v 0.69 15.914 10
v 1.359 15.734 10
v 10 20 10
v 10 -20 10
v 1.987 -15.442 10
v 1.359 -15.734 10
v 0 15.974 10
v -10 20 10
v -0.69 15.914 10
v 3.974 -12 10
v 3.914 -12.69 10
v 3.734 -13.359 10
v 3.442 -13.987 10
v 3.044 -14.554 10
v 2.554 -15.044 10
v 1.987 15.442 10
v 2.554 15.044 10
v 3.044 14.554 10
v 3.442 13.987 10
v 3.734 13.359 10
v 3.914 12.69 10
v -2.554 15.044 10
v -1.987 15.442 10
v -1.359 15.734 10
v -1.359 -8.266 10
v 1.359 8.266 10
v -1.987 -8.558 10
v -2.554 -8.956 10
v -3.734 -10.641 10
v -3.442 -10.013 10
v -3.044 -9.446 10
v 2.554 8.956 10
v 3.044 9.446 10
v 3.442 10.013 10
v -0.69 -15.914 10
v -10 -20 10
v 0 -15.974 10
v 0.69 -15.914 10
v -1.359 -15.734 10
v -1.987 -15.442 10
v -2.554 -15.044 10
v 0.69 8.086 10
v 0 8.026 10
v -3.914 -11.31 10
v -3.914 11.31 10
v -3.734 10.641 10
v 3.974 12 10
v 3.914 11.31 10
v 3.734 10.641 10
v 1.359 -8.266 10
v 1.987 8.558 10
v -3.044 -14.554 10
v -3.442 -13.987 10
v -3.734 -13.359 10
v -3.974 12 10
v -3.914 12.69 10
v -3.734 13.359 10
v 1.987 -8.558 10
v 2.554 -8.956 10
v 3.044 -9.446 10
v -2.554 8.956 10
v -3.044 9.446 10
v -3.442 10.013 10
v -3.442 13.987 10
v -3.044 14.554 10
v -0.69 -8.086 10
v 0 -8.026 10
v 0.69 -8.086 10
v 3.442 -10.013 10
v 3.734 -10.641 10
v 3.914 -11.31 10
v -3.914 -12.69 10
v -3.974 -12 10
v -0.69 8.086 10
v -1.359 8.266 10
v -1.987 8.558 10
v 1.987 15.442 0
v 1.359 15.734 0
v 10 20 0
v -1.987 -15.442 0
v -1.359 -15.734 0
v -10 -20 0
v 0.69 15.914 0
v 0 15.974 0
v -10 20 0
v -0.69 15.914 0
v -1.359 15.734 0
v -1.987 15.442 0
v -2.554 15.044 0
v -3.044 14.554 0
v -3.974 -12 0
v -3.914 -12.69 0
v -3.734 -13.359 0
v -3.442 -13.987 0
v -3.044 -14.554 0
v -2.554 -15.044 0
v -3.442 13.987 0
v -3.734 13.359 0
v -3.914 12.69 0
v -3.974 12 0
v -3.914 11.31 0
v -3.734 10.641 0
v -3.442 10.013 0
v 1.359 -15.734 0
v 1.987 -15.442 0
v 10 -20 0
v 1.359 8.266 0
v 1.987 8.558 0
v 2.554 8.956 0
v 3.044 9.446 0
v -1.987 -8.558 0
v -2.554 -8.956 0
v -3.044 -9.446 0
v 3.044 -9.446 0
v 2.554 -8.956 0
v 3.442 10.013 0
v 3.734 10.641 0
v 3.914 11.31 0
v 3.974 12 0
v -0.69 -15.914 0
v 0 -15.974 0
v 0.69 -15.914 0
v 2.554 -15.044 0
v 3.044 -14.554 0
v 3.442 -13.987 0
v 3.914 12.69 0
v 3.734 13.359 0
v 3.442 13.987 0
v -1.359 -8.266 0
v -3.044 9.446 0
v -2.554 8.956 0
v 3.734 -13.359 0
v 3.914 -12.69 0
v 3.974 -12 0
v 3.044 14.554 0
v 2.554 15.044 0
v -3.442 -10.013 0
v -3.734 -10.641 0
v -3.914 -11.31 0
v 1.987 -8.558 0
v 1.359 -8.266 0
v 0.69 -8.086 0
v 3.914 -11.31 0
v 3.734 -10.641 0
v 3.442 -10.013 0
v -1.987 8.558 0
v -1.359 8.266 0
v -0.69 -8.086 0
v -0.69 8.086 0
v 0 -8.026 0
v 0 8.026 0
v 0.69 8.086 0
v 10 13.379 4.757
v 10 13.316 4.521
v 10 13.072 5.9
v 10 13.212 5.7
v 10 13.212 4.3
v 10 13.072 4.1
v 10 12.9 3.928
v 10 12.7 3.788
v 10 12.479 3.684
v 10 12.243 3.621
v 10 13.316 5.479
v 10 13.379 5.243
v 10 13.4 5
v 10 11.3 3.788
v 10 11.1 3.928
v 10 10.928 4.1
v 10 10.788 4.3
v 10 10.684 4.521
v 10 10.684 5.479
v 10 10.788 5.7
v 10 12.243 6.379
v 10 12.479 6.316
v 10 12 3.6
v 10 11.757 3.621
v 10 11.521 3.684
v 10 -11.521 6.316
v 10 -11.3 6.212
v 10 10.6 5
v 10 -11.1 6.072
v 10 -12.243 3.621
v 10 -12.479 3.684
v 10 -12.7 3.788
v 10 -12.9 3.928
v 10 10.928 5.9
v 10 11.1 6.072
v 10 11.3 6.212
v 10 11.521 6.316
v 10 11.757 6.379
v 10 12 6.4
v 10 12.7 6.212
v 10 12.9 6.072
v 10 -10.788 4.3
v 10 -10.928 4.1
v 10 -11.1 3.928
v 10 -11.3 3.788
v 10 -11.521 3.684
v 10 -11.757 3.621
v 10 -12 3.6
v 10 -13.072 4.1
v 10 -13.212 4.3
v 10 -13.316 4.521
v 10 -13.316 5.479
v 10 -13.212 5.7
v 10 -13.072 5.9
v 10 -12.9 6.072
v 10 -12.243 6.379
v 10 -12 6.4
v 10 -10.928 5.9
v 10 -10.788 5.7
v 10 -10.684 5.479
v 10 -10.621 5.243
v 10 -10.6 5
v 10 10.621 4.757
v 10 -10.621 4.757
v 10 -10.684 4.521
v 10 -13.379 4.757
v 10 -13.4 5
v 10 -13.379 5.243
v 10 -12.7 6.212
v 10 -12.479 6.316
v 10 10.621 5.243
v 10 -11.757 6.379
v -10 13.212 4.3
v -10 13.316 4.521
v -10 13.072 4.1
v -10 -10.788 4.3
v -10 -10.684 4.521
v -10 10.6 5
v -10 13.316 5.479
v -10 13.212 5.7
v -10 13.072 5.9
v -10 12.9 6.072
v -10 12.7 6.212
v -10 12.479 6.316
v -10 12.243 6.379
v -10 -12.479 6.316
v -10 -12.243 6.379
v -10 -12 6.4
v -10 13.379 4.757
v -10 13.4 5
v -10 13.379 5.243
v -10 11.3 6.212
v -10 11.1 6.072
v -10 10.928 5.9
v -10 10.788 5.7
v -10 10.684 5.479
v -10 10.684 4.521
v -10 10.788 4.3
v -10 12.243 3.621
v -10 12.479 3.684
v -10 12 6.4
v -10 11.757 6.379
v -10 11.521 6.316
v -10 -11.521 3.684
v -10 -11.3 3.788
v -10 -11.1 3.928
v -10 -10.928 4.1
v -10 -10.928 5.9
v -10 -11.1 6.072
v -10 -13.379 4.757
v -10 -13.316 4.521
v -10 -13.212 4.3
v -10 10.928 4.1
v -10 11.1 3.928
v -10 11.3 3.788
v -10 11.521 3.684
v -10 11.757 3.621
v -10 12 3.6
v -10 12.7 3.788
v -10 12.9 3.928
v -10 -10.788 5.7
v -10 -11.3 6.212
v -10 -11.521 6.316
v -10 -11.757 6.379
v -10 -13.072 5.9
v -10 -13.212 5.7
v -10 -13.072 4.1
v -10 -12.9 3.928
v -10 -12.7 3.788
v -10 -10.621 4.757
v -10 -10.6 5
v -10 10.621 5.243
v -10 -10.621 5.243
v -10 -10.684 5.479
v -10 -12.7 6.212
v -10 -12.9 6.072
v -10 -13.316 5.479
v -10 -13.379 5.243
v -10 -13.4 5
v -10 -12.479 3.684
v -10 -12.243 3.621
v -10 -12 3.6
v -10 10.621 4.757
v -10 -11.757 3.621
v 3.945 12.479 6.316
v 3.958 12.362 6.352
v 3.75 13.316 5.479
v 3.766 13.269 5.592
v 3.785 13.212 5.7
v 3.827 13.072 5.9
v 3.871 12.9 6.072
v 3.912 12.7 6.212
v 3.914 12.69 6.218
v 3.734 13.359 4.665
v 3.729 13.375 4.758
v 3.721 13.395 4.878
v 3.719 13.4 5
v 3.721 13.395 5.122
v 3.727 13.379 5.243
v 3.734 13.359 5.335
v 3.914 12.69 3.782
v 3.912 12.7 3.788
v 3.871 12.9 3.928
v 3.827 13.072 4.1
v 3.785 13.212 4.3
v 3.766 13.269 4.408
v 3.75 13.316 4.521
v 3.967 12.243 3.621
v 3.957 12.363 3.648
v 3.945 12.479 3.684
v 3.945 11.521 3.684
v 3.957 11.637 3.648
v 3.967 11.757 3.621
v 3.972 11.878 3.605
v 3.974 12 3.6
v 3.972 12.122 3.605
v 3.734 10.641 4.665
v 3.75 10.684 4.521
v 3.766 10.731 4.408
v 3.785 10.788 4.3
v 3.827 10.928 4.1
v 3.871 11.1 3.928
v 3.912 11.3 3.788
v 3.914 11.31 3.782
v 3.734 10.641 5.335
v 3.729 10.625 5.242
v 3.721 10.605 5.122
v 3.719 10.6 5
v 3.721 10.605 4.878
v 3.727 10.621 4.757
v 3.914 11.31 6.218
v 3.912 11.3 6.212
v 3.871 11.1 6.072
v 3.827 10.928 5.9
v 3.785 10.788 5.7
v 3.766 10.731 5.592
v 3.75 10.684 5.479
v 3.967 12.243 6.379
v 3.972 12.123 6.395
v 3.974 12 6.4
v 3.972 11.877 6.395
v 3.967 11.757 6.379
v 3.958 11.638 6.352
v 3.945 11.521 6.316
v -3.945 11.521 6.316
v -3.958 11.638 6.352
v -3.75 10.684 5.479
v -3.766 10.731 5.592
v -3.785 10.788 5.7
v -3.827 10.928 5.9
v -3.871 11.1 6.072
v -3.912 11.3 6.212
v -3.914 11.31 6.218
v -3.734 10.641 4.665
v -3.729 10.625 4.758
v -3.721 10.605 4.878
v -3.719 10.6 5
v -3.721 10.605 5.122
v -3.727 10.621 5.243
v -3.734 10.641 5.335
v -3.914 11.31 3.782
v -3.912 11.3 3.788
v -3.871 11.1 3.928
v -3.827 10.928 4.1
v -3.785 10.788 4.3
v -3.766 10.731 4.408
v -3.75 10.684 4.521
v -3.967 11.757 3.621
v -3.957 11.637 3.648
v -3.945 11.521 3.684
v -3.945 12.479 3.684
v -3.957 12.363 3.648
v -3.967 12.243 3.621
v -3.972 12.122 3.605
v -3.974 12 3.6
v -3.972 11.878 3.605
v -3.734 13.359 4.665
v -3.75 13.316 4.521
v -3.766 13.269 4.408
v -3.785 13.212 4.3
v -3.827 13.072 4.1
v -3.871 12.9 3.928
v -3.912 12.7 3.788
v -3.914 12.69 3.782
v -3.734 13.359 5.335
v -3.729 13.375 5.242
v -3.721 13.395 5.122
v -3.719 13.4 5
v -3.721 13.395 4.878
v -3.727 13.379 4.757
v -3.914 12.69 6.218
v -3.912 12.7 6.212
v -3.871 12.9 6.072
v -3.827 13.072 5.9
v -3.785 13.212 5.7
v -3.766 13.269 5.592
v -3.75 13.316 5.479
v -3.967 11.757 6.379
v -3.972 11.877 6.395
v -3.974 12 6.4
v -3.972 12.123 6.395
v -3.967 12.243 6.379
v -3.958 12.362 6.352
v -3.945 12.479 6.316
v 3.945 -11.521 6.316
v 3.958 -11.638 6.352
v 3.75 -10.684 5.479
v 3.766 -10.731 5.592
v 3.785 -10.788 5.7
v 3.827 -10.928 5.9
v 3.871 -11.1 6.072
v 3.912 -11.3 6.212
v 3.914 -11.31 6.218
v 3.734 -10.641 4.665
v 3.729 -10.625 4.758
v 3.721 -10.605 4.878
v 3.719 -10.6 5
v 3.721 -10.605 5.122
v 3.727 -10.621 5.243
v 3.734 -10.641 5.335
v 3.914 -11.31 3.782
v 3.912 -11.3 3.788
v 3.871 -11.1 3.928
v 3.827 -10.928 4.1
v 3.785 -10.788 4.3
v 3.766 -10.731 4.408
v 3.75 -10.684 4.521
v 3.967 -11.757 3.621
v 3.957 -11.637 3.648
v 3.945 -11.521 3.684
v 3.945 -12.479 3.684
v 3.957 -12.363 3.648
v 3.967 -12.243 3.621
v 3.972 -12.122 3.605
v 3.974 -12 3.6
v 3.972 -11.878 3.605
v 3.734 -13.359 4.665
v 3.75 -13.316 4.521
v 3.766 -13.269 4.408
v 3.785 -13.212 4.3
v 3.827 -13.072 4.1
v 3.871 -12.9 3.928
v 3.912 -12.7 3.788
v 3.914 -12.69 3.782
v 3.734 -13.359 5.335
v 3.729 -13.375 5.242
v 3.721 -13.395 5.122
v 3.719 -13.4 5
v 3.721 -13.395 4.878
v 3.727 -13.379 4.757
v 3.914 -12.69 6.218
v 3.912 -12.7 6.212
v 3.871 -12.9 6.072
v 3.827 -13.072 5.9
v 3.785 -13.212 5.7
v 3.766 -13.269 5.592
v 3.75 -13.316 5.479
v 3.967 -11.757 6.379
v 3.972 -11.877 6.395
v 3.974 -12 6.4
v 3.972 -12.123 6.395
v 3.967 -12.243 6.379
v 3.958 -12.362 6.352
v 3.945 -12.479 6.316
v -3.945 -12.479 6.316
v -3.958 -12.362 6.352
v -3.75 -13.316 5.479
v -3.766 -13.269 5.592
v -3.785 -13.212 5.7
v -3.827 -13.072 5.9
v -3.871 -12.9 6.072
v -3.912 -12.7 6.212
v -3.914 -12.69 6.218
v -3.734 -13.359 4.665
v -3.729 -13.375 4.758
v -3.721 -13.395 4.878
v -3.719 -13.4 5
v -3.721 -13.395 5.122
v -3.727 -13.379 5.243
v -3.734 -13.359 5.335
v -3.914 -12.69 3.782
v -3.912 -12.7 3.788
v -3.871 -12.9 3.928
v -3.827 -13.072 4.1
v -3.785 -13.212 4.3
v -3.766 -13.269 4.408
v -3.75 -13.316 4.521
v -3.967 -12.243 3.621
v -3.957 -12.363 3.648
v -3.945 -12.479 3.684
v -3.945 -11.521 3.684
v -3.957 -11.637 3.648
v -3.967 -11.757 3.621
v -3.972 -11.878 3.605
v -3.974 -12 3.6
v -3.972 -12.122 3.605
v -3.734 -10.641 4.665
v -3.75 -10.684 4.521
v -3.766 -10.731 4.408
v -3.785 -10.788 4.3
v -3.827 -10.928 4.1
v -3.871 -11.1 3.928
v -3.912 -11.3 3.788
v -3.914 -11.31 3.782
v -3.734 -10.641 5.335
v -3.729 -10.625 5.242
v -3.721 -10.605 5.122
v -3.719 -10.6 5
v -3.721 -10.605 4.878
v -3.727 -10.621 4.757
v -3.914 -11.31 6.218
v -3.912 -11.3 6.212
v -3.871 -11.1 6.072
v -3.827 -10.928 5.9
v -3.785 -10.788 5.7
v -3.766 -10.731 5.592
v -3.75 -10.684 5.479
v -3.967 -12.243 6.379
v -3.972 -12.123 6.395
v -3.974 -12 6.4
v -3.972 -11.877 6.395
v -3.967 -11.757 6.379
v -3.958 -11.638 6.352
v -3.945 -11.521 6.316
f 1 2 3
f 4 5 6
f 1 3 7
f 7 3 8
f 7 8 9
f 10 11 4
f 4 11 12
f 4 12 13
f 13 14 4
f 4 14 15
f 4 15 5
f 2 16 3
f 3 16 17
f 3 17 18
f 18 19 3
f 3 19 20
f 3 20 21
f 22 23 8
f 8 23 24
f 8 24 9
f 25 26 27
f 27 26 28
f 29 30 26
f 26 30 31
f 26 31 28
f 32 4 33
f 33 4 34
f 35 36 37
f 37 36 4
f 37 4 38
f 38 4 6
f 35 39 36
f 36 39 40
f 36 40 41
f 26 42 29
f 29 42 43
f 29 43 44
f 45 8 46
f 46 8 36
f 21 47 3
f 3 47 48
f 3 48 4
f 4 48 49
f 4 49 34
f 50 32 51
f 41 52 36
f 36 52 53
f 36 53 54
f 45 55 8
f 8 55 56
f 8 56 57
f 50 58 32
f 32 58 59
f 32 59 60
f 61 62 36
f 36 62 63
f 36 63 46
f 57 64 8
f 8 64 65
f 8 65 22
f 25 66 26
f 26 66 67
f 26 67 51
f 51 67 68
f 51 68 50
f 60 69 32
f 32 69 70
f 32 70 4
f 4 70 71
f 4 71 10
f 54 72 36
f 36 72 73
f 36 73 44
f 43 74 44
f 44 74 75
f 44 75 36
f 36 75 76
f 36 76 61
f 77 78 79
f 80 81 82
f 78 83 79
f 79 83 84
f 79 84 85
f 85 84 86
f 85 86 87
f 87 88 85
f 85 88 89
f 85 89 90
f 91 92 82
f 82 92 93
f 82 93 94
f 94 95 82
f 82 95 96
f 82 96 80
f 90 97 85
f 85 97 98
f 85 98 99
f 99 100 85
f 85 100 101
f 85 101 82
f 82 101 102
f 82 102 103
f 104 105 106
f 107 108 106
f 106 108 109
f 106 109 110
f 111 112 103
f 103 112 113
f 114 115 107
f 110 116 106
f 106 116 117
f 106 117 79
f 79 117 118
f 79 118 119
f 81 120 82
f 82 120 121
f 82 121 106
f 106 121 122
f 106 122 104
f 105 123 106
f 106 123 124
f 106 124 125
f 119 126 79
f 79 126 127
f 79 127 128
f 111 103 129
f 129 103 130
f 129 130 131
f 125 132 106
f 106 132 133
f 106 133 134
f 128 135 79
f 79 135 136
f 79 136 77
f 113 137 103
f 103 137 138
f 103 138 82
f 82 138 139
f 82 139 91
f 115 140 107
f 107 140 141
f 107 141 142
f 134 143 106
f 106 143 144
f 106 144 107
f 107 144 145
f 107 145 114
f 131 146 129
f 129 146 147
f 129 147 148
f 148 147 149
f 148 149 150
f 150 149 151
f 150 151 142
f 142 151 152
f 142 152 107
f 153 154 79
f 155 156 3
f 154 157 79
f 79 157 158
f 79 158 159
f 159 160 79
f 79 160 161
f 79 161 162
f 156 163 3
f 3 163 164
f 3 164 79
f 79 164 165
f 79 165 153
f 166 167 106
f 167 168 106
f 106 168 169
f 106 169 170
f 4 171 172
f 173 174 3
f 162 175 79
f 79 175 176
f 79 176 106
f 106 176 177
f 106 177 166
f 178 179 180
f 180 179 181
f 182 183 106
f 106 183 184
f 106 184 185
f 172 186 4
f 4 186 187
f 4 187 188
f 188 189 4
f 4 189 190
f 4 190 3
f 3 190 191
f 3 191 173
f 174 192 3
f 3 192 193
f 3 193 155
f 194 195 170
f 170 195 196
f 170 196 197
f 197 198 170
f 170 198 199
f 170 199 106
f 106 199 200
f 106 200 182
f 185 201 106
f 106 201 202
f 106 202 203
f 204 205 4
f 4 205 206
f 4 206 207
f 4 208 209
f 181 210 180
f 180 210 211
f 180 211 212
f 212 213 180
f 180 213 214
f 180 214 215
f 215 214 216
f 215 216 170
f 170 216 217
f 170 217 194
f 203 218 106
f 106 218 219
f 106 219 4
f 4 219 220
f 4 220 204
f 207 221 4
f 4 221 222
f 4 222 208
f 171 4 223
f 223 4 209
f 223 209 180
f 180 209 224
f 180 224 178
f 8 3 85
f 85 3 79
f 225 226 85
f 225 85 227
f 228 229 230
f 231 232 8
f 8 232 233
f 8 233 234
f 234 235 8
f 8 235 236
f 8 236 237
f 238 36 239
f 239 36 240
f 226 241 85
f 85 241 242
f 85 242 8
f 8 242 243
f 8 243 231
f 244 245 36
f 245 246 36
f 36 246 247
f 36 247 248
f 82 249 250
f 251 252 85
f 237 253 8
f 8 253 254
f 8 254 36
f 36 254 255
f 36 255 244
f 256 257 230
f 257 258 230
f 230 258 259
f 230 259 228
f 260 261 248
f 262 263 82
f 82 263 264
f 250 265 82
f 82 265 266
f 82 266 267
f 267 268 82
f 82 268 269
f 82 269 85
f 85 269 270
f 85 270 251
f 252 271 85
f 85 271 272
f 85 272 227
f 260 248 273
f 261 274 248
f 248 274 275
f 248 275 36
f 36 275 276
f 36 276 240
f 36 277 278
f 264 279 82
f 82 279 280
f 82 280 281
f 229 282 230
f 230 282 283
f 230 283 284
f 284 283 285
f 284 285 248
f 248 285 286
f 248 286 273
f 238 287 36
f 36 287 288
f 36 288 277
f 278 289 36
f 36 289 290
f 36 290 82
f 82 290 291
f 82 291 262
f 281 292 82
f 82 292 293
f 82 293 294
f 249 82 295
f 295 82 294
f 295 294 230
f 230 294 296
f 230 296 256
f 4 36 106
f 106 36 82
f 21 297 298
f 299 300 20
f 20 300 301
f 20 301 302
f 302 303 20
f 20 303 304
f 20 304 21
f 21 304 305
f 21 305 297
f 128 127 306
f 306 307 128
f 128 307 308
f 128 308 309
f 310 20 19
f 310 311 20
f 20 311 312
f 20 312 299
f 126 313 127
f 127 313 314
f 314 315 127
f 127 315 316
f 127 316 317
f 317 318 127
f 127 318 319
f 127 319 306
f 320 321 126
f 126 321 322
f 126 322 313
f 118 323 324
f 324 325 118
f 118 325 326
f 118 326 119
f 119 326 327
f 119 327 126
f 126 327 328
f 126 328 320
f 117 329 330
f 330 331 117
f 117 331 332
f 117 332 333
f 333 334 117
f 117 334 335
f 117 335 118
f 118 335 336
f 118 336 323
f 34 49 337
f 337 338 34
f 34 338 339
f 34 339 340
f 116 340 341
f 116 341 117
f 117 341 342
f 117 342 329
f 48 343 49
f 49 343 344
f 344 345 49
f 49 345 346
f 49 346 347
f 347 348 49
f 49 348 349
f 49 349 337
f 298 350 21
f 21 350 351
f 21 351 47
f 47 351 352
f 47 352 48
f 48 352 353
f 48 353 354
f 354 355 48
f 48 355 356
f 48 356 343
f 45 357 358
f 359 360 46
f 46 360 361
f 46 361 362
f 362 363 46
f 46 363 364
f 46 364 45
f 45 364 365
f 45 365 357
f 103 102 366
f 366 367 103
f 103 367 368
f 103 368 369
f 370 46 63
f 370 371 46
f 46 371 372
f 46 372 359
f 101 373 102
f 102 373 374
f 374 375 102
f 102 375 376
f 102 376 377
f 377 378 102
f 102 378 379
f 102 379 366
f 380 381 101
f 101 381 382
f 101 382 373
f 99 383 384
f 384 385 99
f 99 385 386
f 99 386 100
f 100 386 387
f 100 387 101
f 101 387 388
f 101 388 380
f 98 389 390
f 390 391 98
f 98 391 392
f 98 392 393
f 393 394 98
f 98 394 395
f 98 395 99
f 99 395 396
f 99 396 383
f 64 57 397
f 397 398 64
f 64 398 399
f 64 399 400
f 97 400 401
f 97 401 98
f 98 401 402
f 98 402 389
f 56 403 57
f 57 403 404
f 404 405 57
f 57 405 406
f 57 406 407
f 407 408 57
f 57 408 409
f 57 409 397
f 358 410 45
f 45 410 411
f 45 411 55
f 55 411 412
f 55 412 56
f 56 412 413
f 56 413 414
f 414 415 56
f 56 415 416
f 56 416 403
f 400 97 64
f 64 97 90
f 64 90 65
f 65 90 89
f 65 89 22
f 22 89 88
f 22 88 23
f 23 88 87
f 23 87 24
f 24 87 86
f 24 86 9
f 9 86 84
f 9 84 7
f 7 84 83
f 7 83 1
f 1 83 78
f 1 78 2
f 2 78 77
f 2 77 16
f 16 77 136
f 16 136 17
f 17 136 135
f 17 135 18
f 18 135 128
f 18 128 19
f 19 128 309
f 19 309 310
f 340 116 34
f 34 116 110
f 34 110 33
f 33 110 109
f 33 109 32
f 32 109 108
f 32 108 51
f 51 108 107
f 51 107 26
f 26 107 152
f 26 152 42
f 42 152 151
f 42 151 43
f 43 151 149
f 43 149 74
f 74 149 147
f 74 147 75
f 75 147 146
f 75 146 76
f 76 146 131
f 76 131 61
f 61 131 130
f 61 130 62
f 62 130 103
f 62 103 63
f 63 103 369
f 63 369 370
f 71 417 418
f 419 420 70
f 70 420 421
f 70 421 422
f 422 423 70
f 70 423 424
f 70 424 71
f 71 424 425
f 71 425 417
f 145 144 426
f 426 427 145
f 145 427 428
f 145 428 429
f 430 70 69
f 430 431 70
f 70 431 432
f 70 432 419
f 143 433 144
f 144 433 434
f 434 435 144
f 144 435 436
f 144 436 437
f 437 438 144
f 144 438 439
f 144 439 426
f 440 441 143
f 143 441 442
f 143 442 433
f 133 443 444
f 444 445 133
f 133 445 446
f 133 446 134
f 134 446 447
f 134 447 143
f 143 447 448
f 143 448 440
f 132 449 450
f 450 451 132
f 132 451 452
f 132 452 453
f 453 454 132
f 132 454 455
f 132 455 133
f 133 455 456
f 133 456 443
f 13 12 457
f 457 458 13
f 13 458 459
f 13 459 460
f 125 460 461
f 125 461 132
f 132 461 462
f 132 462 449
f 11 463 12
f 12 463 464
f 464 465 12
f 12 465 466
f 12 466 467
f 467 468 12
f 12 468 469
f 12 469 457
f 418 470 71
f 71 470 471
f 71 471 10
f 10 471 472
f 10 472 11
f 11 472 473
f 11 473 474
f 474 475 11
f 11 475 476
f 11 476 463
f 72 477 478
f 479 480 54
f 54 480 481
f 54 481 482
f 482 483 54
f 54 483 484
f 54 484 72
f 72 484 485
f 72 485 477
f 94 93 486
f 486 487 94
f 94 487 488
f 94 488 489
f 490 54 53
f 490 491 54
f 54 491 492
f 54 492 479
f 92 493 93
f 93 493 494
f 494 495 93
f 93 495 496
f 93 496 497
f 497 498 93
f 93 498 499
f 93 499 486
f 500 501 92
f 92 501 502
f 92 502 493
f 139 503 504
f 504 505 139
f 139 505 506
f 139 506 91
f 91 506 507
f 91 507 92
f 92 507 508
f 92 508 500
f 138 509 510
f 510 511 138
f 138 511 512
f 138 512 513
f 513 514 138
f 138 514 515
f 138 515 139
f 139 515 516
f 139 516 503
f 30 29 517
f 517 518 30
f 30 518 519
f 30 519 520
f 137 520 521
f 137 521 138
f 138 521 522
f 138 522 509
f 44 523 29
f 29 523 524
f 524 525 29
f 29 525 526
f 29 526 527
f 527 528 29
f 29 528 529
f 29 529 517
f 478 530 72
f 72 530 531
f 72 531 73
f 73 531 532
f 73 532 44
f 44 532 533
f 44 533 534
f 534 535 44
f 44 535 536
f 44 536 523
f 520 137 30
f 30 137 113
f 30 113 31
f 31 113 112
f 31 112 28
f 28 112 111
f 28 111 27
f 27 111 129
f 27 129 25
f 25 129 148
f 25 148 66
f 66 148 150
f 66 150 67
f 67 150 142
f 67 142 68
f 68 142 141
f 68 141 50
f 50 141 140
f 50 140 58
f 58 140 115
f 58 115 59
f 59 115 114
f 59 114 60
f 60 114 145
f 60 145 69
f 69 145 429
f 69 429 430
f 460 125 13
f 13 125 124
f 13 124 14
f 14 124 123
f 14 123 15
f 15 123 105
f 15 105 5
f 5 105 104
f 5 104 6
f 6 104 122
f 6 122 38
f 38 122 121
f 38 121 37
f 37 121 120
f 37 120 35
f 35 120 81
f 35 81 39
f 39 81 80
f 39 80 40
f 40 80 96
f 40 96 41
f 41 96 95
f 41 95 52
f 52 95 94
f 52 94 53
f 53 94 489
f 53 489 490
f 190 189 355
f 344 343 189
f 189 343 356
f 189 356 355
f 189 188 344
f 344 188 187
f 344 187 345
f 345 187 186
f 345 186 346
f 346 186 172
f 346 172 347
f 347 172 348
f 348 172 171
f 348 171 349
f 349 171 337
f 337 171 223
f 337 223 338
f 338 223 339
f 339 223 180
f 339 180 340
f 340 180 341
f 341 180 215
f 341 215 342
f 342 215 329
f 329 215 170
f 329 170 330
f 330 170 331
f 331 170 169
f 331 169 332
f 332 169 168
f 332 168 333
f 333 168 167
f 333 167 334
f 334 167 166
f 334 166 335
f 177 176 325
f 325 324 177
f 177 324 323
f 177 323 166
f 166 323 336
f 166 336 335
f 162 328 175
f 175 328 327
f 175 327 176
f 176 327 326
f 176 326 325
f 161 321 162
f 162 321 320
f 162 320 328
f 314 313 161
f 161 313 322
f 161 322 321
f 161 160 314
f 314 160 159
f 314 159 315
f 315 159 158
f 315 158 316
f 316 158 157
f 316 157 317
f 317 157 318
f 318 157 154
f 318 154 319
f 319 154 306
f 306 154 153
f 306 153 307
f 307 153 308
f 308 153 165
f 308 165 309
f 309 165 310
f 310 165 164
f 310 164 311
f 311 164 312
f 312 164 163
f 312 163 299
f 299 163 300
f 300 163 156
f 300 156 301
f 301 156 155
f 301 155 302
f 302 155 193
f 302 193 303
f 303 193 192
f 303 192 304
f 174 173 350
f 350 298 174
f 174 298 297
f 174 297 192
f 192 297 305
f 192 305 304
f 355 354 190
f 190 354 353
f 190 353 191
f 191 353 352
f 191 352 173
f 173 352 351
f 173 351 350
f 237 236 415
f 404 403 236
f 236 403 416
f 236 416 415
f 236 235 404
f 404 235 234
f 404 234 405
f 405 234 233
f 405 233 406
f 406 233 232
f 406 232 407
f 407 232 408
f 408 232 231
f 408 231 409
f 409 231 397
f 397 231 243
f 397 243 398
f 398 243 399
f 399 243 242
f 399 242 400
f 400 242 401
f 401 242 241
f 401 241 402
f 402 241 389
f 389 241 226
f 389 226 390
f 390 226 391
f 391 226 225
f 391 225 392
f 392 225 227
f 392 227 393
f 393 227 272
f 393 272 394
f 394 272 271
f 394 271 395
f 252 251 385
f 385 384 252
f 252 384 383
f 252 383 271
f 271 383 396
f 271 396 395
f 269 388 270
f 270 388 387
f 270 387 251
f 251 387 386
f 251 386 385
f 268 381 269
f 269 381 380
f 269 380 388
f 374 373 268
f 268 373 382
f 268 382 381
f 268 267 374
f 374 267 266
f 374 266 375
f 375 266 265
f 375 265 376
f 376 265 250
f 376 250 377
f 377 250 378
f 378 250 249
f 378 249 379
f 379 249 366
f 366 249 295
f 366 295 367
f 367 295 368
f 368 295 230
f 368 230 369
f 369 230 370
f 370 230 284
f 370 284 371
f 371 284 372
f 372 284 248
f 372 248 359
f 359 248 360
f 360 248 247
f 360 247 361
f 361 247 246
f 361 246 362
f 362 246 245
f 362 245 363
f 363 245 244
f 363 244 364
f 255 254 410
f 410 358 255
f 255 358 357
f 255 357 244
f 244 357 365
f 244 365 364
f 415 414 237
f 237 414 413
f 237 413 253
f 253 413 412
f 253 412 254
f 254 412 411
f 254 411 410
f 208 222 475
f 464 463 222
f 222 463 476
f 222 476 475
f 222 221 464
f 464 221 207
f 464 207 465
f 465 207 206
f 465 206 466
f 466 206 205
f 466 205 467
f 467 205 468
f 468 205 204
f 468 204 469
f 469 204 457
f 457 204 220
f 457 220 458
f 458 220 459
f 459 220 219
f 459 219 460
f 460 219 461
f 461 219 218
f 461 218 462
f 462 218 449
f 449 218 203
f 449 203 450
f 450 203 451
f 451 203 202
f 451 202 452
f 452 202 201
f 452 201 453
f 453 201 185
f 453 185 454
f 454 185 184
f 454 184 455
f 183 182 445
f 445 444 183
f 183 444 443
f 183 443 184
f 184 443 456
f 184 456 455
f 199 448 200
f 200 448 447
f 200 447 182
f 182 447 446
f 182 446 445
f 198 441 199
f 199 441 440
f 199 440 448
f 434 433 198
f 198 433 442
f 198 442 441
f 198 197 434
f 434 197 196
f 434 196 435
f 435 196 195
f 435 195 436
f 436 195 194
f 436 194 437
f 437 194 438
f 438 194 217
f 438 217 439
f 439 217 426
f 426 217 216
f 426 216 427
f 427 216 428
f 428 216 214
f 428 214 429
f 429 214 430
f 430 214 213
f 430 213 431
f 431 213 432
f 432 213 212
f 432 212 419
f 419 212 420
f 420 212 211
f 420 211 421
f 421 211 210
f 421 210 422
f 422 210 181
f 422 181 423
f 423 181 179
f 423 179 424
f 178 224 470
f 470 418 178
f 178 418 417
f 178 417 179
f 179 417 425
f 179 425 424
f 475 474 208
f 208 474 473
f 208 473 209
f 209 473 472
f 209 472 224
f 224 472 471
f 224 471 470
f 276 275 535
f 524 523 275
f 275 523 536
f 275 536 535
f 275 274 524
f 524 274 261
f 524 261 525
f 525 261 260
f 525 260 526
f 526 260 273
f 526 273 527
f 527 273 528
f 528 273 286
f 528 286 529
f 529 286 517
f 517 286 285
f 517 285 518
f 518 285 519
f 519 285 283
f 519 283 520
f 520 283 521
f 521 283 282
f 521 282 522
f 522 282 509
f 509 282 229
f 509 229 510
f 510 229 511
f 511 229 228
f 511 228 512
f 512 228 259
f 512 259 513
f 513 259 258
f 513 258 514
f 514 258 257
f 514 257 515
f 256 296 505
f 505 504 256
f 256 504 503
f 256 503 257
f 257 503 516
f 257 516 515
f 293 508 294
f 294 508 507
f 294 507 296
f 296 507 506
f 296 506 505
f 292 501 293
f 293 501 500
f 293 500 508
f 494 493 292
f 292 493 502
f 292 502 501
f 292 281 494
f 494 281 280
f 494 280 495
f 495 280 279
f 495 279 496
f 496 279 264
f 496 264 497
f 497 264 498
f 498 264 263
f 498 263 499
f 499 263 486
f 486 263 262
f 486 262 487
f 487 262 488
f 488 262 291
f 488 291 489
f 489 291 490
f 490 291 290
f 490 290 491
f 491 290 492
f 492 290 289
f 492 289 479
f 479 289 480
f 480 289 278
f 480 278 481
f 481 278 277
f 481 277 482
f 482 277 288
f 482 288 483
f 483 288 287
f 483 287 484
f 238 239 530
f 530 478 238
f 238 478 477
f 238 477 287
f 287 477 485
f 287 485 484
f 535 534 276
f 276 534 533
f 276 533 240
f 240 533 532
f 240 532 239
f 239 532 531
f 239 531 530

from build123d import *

# Parameters (mm, degrees)
ESQUISSE1_W             = 20
ESQUISSE1_H             = 40
ESQUISSE1_R             = 3.974062066
BOSS_EXTRU_1_DEPTH      = 10
ESQUISSE2_R             = 1.4
ENL_V_MAT_EXTRU_1_DEPTH = 28


with BuildPart() as part:
    # Esquisse1 → Boss.-Extru.1 (new body)
    with BuildSketch(Plane.XY):
        Rectangle(ESQUISSE1_W, ESQUISSE1_H)
        with Locations((0, 12)):
            Circle(ESQUISSE1_R, mode=Mode.SUBTRACT)
        with Locations((0, -12)):
            Circle(ESQUISSE1_R, mode=Mode.SUBTRACT)
    extrude(amount=BOSS_EXTRU_1_DEPTH)

    # Esquisse2 → Enlèv. mat.-Extru.1 (cut)
    with BuildSketch(Plane.ZY.offset(10)):
        with Locations((5, 12)):
            Circle(ESQUISSE2_R)
        with Locations((5, -12)):
            Circle(ESQUISSE2_R)
    extrude(amount=-ENL_V_MAT_EXTRU_1_DEPTH, mode=Mode.SUBTRACT)


solid = part.part
